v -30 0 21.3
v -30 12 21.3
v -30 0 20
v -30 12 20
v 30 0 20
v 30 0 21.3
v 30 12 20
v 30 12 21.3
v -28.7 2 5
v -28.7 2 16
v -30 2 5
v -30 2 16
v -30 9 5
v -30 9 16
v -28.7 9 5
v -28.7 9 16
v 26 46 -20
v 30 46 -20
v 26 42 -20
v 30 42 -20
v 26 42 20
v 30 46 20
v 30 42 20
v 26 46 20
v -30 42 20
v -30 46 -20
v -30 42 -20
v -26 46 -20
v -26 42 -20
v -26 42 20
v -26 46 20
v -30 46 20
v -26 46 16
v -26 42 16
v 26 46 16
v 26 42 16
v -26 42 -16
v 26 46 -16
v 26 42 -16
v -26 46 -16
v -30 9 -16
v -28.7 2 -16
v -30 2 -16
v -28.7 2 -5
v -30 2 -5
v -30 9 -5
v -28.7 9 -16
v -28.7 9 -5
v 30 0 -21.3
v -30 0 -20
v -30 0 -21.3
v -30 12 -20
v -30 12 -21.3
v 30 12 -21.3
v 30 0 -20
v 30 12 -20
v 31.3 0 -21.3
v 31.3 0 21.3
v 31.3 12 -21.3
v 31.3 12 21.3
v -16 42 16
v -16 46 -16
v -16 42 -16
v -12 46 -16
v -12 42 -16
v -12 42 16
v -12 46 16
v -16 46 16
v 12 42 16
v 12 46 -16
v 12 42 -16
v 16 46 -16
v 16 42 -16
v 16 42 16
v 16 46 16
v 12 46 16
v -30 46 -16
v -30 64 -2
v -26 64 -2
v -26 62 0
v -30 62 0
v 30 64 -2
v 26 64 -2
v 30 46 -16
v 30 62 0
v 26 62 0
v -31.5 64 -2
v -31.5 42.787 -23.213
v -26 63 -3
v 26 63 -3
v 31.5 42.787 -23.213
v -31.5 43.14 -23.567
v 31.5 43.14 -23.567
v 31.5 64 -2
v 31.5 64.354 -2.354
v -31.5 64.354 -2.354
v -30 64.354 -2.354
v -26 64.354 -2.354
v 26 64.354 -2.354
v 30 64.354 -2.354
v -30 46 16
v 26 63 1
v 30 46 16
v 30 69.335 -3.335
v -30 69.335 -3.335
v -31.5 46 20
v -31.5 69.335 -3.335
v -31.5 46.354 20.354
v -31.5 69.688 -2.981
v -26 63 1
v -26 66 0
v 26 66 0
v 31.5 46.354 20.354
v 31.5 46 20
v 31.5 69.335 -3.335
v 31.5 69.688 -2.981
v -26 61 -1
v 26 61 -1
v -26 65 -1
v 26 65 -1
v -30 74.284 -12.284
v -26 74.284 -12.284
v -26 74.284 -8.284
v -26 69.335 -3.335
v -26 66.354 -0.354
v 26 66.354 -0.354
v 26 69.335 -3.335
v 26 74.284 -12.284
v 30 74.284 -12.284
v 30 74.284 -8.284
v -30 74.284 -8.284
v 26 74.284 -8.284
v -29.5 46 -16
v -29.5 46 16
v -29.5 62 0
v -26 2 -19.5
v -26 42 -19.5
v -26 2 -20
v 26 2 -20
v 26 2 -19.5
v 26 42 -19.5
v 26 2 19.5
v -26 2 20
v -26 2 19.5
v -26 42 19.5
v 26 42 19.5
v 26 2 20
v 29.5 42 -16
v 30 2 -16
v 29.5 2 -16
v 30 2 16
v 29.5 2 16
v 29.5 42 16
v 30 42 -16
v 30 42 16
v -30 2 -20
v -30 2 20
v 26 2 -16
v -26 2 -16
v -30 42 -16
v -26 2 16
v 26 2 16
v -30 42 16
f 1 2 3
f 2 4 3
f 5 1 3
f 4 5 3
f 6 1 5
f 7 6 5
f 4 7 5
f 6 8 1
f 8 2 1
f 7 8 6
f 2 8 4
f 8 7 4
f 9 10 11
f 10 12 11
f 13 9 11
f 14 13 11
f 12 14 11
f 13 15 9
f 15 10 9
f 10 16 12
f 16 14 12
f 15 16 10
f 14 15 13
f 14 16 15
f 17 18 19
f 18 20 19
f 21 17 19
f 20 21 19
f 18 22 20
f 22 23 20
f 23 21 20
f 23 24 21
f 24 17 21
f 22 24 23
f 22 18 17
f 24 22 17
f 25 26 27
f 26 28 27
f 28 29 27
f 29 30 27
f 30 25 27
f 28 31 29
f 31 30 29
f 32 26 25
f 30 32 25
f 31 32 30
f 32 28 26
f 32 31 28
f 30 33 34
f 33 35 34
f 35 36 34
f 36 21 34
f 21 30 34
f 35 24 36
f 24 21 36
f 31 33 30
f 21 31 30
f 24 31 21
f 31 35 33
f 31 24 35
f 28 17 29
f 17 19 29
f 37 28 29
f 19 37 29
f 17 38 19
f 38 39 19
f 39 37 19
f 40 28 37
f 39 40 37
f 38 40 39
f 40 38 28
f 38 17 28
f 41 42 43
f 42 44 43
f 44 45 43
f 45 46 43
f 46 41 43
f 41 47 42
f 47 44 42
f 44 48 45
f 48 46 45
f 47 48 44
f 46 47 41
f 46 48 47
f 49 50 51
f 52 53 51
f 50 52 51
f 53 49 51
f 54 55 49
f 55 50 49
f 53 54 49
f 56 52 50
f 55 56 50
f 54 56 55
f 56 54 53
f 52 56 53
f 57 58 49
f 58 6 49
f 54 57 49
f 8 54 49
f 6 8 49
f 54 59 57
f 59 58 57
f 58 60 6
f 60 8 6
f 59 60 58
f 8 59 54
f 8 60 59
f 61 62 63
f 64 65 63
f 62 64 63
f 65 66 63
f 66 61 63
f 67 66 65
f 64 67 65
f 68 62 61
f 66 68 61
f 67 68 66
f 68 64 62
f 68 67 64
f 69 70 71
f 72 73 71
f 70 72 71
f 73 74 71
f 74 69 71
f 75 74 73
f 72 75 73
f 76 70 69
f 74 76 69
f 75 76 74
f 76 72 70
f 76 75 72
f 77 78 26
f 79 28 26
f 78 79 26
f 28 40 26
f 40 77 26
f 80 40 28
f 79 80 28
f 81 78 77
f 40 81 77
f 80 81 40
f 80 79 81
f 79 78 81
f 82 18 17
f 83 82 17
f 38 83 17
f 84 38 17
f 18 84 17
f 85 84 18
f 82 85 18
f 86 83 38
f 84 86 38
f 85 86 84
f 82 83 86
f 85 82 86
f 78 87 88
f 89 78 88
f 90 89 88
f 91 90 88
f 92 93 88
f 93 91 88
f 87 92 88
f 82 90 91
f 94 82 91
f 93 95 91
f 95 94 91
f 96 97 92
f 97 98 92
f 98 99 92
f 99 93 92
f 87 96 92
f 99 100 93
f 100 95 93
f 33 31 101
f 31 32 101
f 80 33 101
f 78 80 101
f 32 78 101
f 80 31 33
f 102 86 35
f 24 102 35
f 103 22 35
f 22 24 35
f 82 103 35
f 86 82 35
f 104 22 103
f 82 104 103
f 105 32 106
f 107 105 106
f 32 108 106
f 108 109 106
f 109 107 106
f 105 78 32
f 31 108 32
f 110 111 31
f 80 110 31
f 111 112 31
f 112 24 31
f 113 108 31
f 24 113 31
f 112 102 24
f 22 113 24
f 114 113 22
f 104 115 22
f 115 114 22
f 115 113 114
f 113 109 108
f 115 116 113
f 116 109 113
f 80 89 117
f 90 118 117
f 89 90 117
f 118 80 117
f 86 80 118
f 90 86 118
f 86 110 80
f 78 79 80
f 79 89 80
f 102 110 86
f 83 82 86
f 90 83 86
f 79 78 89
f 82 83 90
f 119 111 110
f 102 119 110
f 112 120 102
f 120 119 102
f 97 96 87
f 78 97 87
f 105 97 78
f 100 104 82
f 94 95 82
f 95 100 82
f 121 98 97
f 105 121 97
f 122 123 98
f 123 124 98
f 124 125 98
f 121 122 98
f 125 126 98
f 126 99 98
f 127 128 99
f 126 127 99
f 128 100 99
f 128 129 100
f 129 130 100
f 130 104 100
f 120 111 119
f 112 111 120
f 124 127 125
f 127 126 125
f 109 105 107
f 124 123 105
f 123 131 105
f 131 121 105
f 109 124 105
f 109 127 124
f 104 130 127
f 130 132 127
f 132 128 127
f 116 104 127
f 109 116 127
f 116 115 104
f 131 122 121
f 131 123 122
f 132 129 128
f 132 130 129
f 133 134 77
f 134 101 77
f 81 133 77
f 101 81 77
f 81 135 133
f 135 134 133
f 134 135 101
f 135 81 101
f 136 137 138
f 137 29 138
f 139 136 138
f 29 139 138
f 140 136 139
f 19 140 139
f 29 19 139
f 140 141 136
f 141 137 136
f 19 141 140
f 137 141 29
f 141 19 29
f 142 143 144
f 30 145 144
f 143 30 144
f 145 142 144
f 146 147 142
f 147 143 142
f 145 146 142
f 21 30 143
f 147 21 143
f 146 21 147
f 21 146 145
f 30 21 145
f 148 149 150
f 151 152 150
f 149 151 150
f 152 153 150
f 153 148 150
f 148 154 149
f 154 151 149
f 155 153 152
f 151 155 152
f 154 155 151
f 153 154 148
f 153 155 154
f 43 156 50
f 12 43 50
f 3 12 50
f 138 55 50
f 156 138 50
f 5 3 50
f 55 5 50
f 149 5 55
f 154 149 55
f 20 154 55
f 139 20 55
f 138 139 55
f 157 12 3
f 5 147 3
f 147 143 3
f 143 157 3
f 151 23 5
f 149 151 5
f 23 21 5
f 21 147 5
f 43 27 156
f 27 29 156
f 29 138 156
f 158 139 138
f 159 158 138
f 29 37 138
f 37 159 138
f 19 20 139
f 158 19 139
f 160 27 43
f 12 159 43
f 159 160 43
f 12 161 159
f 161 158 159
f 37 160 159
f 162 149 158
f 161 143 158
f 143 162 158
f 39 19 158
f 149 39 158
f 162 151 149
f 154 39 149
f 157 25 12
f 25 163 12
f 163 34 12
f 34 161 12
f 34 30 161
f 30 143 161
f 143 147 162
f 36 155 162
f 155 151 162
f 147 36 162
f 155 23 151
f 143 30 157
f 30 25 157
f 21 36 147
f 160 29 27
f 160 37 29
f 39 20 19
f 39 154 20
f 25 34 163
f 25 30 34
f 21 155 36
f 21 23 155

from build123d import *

# Parameters (mm, degrees)
SKETCH1_W              = 60
SKETCH1_H              = 40
BOSS_EXTRUDE1_DEPTH    = 2
SKETCH2_W              = 4
SKETCH2_H              = 4
BOSS_EXTRUDE2_DEPTH    = 40
SKETCH5_W              = 60
SKETCH5_H              = 12
BOSS_EXTRUDE4_DEPTH    = 1.3
SKETCH4_W              = 11
SKETCH4_H              = 7
BOSS_EXTRUDE5_DEPTH    = 1.3
BOSS_EXTRUDE5_2_DEPTH  = 1.3
SKETCH8_W              = 4
SKETCH8_H              = 40
BOSS_EXTRUDE8_DEPTH    = 4
BOSS_EXTRUDE8_2_DEPTH  = 4
SKETCH8_4_W            = 52
SKETCH8_4_H            = 4
BOSS_EXTRUDE9_DEPTH    = 4
BOSS_EXTRUDE9_2_DEPTH  = 4
SKETCH9_W              = 60
SKETCH9_H              = 12
BOSS_EXTRUDE10_DEPTH   = 1.3
SKETCH10_W             = 42.6
SKETCH10_H             = 12
BOSS_EXTRUDE11_DEPTH   = 1.3
SKETCH11_W             = 4
SKETCH11_H             = 32
BOSS_EXTRUDE12_DEPTH   = 4
BOSS_EXTRUDE12_2_DEPTH = 4
SKETCH13_W             = 4
SKETCH13_H             = 4
SWEEP3_START           = -30
SWEEP3_DEPTH           = 4
SKETCH17_W             = 4
SKETCH17_H             = 4
SWEEP5_START           = 26
SWEEP5_DEPTH           = 4
BOSS_EXTRUDE13_DEPTH   = 52
BOSS_EXTRUDE15_DEPTH   = 0.5
SKETCH23_W             = 63
SKETCH23_H             = 33
BOSS_EXTRUDE16_DEPTH   = 0.5
SKETCH24_W             = 52
SKETCH24_H             = 0.5
BOSS_EXTRUDE17_DEPTH   = 1.914214
BOSS_EXTRUDE19_DEPTH   = 0.5
SKETCH29_W             = 52
SKETCH29_H             = 40
BOSS_EXTRUDE21_DEPTH   = 0.5
SKETCH30_W             = 52
SKETCH30_H             = 40
BOSS_EXTRUDE22_DEPTH   = 0.5
SKETCH28_W             = 32
SKETCH28_H             = 40
BOSS_EXTRUDE25_DEPTH   = 0.5


# Read off the part's stored shape, not the designer's step: Sweep3, Sweep5
with BuildPart() as part:
    # Sketch1 → Boss-Extrude1 (new body)
    with BuildSketch(Plane(origin=(0, 0, 0), x_dir=(1, 0, 0), z_dir=(0, 1, 0))):
        Rectangle(SKETCH1_W, SKETCH1_H)
    extrude(amount=BOSS_EXTRUDE1_DEPTH)

    # Sketch2 → Boss-Extrude2 (add)
    with BuildSketch(Plane(origin=(0, 2, 0), x_dir=(1, 0, 0), z_dir=(0, 1, 0))):
        with Locations((-28, 18)):
            Rectangle(SKETCH2_W, SKETCH2_H)
        with Locations((-28, -18)):
            Rectangle(SKETCH2_W, SKETCH2_H)
        with Locations((28, -18)):
            Rectangle(SKETCH2_W, SKETCH2_H)
        with Locations((28, 18)):
            Rectangle(SKETCH2_W, SKETCH2_H)
    extrude(amount=BOSS_EXTRUDE2_DEPTH)


with BuildPart() as body_2:
    # Sketch5 → Boss-Extrude4 (new body)
    with BuildSketch(Plane.XY.offset(20)):
        with Locations((0, 6)):
            Rectangle(SKETCH5_W, SKETCH5_H)
    extrude(amount=BOSS_EXTRUDE4_DEPTH)


with BuildPart() as body_3:
    # Sketch4 → Boss-Extrude5 (new body)
    with BuildSketch(Plane.ZY.offset(30)):
        with Locations((-10.5, 5.5)):
            Rectangle(SKETCH4_W, SKETCH4_H)
    extrude(amount=-BOSS_EXTRUDE5_DEPTH)


with BuildPart() as body_4:
    # Sketch4 → Boss-Extrude5 2 (new body)
    with BuildSketch(Plane.ZY.offset(30)):
        with Locations((10.5, 5.5)):
            Rectangle(SKETCH4_W, SKETCH4_H)
    extrude(amount=-BOSS_EXTRUDE5_2_DEPTH)


with BuildPart() as body_5:
    # Sketch8 → Boss-Extrude8 (new body)
    with BuildSketch(Plane(origin=(0, 42, 0), x_dir=(1, 0, 0), z_dir=(0, 1, 0))):
        with Locations((-28, 0)):
            Rectangle(SKETCH8_W, SKETCH8_H)
    extrude(amount=BOSS_EXTRUDE8_DEPTH)


with BuildPart() as body_6:
    # Sketch8 → Boss-Extrude8 2 (new body)
    with BuildSketch(Plane(origin=(0, 42, 0), x_dir=(1, 0, 0), z_dir=(0, 1, 0))):
        with Locations((28, 0)):
            Rectangle(SKETCH8_W, SKETCH8_H)
    extrude(amount=BOSS_EXTRUDE8_2_DEPTH)


with BuildPart() as body_7:
    # Sketch8<4> → Boss-Extrude9 (new body)
    with BuildSketch(Plane(origin=(0, 42, 0), x_dir=(1, 0, 0), z_dir=(0, 1, 0))):
        with Locations((0, 18)):
            Rectangle(SKETCH8_4_W, SKETCH8_4_H)
    extrude(amount=BOSS_EXTRUDE9_DEPTH)


with BuildPart() as body_8:
    # Sketch8<4> → Boss-Extrude9 2 (new body)
    with BuildSketch(Plane(origin=(0, 42, 0), x_dir=(1, 0, 0), z_dir=(0, 1, 0))):
        with Locations((0, -18)):
            Rectangle(SKETCH8_4_W, SKETCH8_4_H)
    extrude(amount=BOSS_EXTRUDE9_2_DEPTH)


with BuildPart() as body_9:
    # Sketch9 → Boss-Extrude10 (new body)
    with BuildSketch(Plane(origin=(0, 0, -20), x_dir=(-1, 0, 0), z_dir=(0, 0, -1))):
        with Locations((0, 6)):
            Rectangle(SKETCH9_W, SKETCH9_H)
    extrude(amount=BOSS_EXTRUDE10_DEPTH)


with BuildPart() as body_10:
    # Sketch10 → Boss-Extrude11 (new body)
    with BuildSketch(Plane(origin=(30, 0, 0), x_dir=(0, 0, -1), z_dir=(1, 0, 0))):
        with Locations((0, 6)):
            Rectangle(SKETCH10_W, SKETCH10_H)
    extrude(amount=BOSS_EXTRUDE11_DEPTH)


with BuildPart() as body_11:
    # Sketch11 → Boss-Extrude12 (new body)
    with BuildSketch(Plane(origin=(0, 46, 0), x_dir=(1, 0, 0), z_dir=(0, 1, 0))):
        with Locations((-14, 0)):
            Rectangle(SKETCH11_W, SKETCH11_H)
    extrude(amount=-BOSS_EXTRUDE12_DEPTH)


with BuildPart() as body_12:
    # Sketch11 → Boss-Extrude12 2 (new body)
    with BuildSketch(Plane(origin=(0, 46, 0), x_dir=(1, 0, 0), z_dir=(0, 1, 0))):
        with Locations((14, 0)):
            Rectangle(SKETCH11_W, SKETCH11_H)
    extrude(amount=-BOSS_EXTRUDE12_2_DEPTH)


with BuildPart() as body_13:
    # Sweep2: sweep along a path in Sketch14
    with BuildLine(Plane.ZY.offset(28)) as sweep2_path:
        Line((18, 46), (-10.284271247, 74.284271247))
    # Sketch13 → Sweep2 (sweep)
    with BuildSketch(Plane(origin=(0, 46, 0), x_dir=(1, 0, 0), z_dir=(0, 1, 0))):
        with Locations((-28, -18)):
            Rectangle(SKETCH13_W, SKETCH13_H)
    sweep(path=sweep2_path.line)



with BuildPart() as body_14:
    # Sweep3 outline → Sweep3 (new body)
    with BuildSketch(Plane.YZ.offset(SWEEP3_START)):
        Polygon((64, -2), (62, 0), (46, -16), (46, -20), align=None)
    extrude(amount=SWEEP3_DEPTH)


with BuildPart() as body_15:
    # Sweep4: sweep along a path in Sketch18
    with BuildLine(Plane(origin=(28, 0, 0), x_dir=(0, 0, -1), z_dir=(1, 0, 0))) as sweep4_path:
        Line((-18, 46), (10.284271247, 74.284271247))
    # Sketch17 → Sweep4 (sweep)
    with BuildSketch(Plane(origin=(0, 46, 0), x_dir=(1, 0, 0), z_dir=(0, 1, 0))):
        with Locations((28, -18)):
            Rectangle(SKETCH17_W, SKETCH17_H)
    sweep(path=sweep4_path.line)


with BuildPart() as body_16:
    # Sweep5 outline → Sweep5 (new body)
    with BuildSketch(Plane.YZ.offset(SWEEP5_START)):
        Polygon((46, -16), (46, -20), (64, -2), (62, 0), align=None)
    extrude(amount=SWEEP5_DEPTH)


with BuildPart() as body_17:
    # Sketch21 → Boss-Extrude13 (new body)
    with BuildSketch(Plane(origin=(-26, 0, 0), x_dir=(0, 0, -1), z_dir=(1, 0, 0))):
        Polygon((2.999999991, 63.000000009), (0.999999991, 61.000000009), (-0.999999991, 62.999999991), (1.000000009, 64.999999991), align=None)
    extrude(amount=BOSS_EXTRUDE13_DEPTH)


with BuildPart() as body_18:
    # Sketch22 → Boss-Extrude15 (new body)
    with BuildSketch(Plane(origin=(0, 33, -33), x_dir=(1, 0, 0), z_dir=(0, 0.7071067811865477, -0.7071067811865474))):
        Polygon((26, -43.840620434), (26, -45.254833984), (-26, -45.254833984), (-26, -43.840620434), (-31.5, -43.840620434), (-31.5, -13.840620434), (31.5, -13.840620434), (31.5, -43.840620434), align=None)
    extrude(amount=BOSS_EXTRUDE15_DEPTH)


with BuildPart() as body_19:
    # Sketch23 → Boss-Extrude16 (new body)
    with BuildSketch(Plane(origin=(0, 33, 33), x_dir=(1, 0, 0), z_dir=(0, 0.7071067811865477, 0.7071067811865475))):
        with Locations((0, 34.884776311)):
            Rectangle(SKETCH23_W, SKETCH23_H)
    extrude(amount=BOSS_EXTRUDE16_DEPTH)


with BuildPart() as body_13_1:
    add(body_13.part)

    add(body_15.part)  # Boss-Extrude17 merges body 15

    add(body_17.part)  # Boss-Extrude17 merges body 17

    add(body_18.part)  # Boss-Extrude17 merges body 18

    add(body_19.part)  # Boss-Extrude17 merges body 19
    # Sketch24 → Boss-Extrude17 (add)
    with BuildSketch(Plane(origin=(0, 31.999999991, 31.999999991), x_dir=(1, 0, 0), z_dir=(0, 0.7071067811865474, 0.7071067811865477))):
        with Locations((0, 46.919047558)):
            Rectangle(SKETCH24_W, SKETCH24_H)
    extrude(amount=BOSS_EXTRUDE17_DEPTH)


with BuildPart() as body_16_2:
    # Sketch27 → Boss-Extrude19 (new body)
    with BuildSketch(Plane.ZY.offset(30)):
        Polygon((-16, 46), (16, 46), (0, 62), align=None)
    extrude(amount=-BOSS_EXTRUDE19_DEPTH)


with BuildPart() as body_17_2:
    # Sketch29 → Boss-Extrude21 (new body)
    with BuildSketch(Plane(origin=(0, 0, -20), x_dir=(-1, 0, 0), z_dir=(0, 0, -1))):
        with Locations((0, 22)):
            Rectangle(SKETCH29_W, SKETCH29_H)
    extrude(amount=-BOSS_EXTRUDE21_DEPTH)


with BuildPart() as body_18_2:
    # Sketch30 → Boss-Extrude22 (new body)
    with BuildSketch(Plane.XY.offset(20)):
        with Locations((0, 22)):
            Rectangle(SKETCH30_W, SKETCH30_H)
    extrude(amount=-BOSS_EXTRUDE22_DEPTH)


with BuildPart() as body_19_2:
    # Sketch28 → Boss-Extrude25 (new body)
    with BuildSketch(Plane(origin=(30, 0, 0), x_dir=(0, 0, -1), z_dir=(1, 0, 0))):
        with Locations((0, 22)):
            Rectangle(SKETCH28_W, SKETCH28_H)
    extrude(amount=-BOSS_EXTRUDE25_DEPTH)


solid = Compound([part.part, body_2.part, body_3.part, body_4.part, body_5.part, body_6.part, body_7.part, body_8.part, body_9.part, body_10.part, body_11.part, body_12.part, body_14.part, body_16.part, body_13_1.part, body_16_2.part, body_17_2.part, body_18_2.part, body_19_2.part])
